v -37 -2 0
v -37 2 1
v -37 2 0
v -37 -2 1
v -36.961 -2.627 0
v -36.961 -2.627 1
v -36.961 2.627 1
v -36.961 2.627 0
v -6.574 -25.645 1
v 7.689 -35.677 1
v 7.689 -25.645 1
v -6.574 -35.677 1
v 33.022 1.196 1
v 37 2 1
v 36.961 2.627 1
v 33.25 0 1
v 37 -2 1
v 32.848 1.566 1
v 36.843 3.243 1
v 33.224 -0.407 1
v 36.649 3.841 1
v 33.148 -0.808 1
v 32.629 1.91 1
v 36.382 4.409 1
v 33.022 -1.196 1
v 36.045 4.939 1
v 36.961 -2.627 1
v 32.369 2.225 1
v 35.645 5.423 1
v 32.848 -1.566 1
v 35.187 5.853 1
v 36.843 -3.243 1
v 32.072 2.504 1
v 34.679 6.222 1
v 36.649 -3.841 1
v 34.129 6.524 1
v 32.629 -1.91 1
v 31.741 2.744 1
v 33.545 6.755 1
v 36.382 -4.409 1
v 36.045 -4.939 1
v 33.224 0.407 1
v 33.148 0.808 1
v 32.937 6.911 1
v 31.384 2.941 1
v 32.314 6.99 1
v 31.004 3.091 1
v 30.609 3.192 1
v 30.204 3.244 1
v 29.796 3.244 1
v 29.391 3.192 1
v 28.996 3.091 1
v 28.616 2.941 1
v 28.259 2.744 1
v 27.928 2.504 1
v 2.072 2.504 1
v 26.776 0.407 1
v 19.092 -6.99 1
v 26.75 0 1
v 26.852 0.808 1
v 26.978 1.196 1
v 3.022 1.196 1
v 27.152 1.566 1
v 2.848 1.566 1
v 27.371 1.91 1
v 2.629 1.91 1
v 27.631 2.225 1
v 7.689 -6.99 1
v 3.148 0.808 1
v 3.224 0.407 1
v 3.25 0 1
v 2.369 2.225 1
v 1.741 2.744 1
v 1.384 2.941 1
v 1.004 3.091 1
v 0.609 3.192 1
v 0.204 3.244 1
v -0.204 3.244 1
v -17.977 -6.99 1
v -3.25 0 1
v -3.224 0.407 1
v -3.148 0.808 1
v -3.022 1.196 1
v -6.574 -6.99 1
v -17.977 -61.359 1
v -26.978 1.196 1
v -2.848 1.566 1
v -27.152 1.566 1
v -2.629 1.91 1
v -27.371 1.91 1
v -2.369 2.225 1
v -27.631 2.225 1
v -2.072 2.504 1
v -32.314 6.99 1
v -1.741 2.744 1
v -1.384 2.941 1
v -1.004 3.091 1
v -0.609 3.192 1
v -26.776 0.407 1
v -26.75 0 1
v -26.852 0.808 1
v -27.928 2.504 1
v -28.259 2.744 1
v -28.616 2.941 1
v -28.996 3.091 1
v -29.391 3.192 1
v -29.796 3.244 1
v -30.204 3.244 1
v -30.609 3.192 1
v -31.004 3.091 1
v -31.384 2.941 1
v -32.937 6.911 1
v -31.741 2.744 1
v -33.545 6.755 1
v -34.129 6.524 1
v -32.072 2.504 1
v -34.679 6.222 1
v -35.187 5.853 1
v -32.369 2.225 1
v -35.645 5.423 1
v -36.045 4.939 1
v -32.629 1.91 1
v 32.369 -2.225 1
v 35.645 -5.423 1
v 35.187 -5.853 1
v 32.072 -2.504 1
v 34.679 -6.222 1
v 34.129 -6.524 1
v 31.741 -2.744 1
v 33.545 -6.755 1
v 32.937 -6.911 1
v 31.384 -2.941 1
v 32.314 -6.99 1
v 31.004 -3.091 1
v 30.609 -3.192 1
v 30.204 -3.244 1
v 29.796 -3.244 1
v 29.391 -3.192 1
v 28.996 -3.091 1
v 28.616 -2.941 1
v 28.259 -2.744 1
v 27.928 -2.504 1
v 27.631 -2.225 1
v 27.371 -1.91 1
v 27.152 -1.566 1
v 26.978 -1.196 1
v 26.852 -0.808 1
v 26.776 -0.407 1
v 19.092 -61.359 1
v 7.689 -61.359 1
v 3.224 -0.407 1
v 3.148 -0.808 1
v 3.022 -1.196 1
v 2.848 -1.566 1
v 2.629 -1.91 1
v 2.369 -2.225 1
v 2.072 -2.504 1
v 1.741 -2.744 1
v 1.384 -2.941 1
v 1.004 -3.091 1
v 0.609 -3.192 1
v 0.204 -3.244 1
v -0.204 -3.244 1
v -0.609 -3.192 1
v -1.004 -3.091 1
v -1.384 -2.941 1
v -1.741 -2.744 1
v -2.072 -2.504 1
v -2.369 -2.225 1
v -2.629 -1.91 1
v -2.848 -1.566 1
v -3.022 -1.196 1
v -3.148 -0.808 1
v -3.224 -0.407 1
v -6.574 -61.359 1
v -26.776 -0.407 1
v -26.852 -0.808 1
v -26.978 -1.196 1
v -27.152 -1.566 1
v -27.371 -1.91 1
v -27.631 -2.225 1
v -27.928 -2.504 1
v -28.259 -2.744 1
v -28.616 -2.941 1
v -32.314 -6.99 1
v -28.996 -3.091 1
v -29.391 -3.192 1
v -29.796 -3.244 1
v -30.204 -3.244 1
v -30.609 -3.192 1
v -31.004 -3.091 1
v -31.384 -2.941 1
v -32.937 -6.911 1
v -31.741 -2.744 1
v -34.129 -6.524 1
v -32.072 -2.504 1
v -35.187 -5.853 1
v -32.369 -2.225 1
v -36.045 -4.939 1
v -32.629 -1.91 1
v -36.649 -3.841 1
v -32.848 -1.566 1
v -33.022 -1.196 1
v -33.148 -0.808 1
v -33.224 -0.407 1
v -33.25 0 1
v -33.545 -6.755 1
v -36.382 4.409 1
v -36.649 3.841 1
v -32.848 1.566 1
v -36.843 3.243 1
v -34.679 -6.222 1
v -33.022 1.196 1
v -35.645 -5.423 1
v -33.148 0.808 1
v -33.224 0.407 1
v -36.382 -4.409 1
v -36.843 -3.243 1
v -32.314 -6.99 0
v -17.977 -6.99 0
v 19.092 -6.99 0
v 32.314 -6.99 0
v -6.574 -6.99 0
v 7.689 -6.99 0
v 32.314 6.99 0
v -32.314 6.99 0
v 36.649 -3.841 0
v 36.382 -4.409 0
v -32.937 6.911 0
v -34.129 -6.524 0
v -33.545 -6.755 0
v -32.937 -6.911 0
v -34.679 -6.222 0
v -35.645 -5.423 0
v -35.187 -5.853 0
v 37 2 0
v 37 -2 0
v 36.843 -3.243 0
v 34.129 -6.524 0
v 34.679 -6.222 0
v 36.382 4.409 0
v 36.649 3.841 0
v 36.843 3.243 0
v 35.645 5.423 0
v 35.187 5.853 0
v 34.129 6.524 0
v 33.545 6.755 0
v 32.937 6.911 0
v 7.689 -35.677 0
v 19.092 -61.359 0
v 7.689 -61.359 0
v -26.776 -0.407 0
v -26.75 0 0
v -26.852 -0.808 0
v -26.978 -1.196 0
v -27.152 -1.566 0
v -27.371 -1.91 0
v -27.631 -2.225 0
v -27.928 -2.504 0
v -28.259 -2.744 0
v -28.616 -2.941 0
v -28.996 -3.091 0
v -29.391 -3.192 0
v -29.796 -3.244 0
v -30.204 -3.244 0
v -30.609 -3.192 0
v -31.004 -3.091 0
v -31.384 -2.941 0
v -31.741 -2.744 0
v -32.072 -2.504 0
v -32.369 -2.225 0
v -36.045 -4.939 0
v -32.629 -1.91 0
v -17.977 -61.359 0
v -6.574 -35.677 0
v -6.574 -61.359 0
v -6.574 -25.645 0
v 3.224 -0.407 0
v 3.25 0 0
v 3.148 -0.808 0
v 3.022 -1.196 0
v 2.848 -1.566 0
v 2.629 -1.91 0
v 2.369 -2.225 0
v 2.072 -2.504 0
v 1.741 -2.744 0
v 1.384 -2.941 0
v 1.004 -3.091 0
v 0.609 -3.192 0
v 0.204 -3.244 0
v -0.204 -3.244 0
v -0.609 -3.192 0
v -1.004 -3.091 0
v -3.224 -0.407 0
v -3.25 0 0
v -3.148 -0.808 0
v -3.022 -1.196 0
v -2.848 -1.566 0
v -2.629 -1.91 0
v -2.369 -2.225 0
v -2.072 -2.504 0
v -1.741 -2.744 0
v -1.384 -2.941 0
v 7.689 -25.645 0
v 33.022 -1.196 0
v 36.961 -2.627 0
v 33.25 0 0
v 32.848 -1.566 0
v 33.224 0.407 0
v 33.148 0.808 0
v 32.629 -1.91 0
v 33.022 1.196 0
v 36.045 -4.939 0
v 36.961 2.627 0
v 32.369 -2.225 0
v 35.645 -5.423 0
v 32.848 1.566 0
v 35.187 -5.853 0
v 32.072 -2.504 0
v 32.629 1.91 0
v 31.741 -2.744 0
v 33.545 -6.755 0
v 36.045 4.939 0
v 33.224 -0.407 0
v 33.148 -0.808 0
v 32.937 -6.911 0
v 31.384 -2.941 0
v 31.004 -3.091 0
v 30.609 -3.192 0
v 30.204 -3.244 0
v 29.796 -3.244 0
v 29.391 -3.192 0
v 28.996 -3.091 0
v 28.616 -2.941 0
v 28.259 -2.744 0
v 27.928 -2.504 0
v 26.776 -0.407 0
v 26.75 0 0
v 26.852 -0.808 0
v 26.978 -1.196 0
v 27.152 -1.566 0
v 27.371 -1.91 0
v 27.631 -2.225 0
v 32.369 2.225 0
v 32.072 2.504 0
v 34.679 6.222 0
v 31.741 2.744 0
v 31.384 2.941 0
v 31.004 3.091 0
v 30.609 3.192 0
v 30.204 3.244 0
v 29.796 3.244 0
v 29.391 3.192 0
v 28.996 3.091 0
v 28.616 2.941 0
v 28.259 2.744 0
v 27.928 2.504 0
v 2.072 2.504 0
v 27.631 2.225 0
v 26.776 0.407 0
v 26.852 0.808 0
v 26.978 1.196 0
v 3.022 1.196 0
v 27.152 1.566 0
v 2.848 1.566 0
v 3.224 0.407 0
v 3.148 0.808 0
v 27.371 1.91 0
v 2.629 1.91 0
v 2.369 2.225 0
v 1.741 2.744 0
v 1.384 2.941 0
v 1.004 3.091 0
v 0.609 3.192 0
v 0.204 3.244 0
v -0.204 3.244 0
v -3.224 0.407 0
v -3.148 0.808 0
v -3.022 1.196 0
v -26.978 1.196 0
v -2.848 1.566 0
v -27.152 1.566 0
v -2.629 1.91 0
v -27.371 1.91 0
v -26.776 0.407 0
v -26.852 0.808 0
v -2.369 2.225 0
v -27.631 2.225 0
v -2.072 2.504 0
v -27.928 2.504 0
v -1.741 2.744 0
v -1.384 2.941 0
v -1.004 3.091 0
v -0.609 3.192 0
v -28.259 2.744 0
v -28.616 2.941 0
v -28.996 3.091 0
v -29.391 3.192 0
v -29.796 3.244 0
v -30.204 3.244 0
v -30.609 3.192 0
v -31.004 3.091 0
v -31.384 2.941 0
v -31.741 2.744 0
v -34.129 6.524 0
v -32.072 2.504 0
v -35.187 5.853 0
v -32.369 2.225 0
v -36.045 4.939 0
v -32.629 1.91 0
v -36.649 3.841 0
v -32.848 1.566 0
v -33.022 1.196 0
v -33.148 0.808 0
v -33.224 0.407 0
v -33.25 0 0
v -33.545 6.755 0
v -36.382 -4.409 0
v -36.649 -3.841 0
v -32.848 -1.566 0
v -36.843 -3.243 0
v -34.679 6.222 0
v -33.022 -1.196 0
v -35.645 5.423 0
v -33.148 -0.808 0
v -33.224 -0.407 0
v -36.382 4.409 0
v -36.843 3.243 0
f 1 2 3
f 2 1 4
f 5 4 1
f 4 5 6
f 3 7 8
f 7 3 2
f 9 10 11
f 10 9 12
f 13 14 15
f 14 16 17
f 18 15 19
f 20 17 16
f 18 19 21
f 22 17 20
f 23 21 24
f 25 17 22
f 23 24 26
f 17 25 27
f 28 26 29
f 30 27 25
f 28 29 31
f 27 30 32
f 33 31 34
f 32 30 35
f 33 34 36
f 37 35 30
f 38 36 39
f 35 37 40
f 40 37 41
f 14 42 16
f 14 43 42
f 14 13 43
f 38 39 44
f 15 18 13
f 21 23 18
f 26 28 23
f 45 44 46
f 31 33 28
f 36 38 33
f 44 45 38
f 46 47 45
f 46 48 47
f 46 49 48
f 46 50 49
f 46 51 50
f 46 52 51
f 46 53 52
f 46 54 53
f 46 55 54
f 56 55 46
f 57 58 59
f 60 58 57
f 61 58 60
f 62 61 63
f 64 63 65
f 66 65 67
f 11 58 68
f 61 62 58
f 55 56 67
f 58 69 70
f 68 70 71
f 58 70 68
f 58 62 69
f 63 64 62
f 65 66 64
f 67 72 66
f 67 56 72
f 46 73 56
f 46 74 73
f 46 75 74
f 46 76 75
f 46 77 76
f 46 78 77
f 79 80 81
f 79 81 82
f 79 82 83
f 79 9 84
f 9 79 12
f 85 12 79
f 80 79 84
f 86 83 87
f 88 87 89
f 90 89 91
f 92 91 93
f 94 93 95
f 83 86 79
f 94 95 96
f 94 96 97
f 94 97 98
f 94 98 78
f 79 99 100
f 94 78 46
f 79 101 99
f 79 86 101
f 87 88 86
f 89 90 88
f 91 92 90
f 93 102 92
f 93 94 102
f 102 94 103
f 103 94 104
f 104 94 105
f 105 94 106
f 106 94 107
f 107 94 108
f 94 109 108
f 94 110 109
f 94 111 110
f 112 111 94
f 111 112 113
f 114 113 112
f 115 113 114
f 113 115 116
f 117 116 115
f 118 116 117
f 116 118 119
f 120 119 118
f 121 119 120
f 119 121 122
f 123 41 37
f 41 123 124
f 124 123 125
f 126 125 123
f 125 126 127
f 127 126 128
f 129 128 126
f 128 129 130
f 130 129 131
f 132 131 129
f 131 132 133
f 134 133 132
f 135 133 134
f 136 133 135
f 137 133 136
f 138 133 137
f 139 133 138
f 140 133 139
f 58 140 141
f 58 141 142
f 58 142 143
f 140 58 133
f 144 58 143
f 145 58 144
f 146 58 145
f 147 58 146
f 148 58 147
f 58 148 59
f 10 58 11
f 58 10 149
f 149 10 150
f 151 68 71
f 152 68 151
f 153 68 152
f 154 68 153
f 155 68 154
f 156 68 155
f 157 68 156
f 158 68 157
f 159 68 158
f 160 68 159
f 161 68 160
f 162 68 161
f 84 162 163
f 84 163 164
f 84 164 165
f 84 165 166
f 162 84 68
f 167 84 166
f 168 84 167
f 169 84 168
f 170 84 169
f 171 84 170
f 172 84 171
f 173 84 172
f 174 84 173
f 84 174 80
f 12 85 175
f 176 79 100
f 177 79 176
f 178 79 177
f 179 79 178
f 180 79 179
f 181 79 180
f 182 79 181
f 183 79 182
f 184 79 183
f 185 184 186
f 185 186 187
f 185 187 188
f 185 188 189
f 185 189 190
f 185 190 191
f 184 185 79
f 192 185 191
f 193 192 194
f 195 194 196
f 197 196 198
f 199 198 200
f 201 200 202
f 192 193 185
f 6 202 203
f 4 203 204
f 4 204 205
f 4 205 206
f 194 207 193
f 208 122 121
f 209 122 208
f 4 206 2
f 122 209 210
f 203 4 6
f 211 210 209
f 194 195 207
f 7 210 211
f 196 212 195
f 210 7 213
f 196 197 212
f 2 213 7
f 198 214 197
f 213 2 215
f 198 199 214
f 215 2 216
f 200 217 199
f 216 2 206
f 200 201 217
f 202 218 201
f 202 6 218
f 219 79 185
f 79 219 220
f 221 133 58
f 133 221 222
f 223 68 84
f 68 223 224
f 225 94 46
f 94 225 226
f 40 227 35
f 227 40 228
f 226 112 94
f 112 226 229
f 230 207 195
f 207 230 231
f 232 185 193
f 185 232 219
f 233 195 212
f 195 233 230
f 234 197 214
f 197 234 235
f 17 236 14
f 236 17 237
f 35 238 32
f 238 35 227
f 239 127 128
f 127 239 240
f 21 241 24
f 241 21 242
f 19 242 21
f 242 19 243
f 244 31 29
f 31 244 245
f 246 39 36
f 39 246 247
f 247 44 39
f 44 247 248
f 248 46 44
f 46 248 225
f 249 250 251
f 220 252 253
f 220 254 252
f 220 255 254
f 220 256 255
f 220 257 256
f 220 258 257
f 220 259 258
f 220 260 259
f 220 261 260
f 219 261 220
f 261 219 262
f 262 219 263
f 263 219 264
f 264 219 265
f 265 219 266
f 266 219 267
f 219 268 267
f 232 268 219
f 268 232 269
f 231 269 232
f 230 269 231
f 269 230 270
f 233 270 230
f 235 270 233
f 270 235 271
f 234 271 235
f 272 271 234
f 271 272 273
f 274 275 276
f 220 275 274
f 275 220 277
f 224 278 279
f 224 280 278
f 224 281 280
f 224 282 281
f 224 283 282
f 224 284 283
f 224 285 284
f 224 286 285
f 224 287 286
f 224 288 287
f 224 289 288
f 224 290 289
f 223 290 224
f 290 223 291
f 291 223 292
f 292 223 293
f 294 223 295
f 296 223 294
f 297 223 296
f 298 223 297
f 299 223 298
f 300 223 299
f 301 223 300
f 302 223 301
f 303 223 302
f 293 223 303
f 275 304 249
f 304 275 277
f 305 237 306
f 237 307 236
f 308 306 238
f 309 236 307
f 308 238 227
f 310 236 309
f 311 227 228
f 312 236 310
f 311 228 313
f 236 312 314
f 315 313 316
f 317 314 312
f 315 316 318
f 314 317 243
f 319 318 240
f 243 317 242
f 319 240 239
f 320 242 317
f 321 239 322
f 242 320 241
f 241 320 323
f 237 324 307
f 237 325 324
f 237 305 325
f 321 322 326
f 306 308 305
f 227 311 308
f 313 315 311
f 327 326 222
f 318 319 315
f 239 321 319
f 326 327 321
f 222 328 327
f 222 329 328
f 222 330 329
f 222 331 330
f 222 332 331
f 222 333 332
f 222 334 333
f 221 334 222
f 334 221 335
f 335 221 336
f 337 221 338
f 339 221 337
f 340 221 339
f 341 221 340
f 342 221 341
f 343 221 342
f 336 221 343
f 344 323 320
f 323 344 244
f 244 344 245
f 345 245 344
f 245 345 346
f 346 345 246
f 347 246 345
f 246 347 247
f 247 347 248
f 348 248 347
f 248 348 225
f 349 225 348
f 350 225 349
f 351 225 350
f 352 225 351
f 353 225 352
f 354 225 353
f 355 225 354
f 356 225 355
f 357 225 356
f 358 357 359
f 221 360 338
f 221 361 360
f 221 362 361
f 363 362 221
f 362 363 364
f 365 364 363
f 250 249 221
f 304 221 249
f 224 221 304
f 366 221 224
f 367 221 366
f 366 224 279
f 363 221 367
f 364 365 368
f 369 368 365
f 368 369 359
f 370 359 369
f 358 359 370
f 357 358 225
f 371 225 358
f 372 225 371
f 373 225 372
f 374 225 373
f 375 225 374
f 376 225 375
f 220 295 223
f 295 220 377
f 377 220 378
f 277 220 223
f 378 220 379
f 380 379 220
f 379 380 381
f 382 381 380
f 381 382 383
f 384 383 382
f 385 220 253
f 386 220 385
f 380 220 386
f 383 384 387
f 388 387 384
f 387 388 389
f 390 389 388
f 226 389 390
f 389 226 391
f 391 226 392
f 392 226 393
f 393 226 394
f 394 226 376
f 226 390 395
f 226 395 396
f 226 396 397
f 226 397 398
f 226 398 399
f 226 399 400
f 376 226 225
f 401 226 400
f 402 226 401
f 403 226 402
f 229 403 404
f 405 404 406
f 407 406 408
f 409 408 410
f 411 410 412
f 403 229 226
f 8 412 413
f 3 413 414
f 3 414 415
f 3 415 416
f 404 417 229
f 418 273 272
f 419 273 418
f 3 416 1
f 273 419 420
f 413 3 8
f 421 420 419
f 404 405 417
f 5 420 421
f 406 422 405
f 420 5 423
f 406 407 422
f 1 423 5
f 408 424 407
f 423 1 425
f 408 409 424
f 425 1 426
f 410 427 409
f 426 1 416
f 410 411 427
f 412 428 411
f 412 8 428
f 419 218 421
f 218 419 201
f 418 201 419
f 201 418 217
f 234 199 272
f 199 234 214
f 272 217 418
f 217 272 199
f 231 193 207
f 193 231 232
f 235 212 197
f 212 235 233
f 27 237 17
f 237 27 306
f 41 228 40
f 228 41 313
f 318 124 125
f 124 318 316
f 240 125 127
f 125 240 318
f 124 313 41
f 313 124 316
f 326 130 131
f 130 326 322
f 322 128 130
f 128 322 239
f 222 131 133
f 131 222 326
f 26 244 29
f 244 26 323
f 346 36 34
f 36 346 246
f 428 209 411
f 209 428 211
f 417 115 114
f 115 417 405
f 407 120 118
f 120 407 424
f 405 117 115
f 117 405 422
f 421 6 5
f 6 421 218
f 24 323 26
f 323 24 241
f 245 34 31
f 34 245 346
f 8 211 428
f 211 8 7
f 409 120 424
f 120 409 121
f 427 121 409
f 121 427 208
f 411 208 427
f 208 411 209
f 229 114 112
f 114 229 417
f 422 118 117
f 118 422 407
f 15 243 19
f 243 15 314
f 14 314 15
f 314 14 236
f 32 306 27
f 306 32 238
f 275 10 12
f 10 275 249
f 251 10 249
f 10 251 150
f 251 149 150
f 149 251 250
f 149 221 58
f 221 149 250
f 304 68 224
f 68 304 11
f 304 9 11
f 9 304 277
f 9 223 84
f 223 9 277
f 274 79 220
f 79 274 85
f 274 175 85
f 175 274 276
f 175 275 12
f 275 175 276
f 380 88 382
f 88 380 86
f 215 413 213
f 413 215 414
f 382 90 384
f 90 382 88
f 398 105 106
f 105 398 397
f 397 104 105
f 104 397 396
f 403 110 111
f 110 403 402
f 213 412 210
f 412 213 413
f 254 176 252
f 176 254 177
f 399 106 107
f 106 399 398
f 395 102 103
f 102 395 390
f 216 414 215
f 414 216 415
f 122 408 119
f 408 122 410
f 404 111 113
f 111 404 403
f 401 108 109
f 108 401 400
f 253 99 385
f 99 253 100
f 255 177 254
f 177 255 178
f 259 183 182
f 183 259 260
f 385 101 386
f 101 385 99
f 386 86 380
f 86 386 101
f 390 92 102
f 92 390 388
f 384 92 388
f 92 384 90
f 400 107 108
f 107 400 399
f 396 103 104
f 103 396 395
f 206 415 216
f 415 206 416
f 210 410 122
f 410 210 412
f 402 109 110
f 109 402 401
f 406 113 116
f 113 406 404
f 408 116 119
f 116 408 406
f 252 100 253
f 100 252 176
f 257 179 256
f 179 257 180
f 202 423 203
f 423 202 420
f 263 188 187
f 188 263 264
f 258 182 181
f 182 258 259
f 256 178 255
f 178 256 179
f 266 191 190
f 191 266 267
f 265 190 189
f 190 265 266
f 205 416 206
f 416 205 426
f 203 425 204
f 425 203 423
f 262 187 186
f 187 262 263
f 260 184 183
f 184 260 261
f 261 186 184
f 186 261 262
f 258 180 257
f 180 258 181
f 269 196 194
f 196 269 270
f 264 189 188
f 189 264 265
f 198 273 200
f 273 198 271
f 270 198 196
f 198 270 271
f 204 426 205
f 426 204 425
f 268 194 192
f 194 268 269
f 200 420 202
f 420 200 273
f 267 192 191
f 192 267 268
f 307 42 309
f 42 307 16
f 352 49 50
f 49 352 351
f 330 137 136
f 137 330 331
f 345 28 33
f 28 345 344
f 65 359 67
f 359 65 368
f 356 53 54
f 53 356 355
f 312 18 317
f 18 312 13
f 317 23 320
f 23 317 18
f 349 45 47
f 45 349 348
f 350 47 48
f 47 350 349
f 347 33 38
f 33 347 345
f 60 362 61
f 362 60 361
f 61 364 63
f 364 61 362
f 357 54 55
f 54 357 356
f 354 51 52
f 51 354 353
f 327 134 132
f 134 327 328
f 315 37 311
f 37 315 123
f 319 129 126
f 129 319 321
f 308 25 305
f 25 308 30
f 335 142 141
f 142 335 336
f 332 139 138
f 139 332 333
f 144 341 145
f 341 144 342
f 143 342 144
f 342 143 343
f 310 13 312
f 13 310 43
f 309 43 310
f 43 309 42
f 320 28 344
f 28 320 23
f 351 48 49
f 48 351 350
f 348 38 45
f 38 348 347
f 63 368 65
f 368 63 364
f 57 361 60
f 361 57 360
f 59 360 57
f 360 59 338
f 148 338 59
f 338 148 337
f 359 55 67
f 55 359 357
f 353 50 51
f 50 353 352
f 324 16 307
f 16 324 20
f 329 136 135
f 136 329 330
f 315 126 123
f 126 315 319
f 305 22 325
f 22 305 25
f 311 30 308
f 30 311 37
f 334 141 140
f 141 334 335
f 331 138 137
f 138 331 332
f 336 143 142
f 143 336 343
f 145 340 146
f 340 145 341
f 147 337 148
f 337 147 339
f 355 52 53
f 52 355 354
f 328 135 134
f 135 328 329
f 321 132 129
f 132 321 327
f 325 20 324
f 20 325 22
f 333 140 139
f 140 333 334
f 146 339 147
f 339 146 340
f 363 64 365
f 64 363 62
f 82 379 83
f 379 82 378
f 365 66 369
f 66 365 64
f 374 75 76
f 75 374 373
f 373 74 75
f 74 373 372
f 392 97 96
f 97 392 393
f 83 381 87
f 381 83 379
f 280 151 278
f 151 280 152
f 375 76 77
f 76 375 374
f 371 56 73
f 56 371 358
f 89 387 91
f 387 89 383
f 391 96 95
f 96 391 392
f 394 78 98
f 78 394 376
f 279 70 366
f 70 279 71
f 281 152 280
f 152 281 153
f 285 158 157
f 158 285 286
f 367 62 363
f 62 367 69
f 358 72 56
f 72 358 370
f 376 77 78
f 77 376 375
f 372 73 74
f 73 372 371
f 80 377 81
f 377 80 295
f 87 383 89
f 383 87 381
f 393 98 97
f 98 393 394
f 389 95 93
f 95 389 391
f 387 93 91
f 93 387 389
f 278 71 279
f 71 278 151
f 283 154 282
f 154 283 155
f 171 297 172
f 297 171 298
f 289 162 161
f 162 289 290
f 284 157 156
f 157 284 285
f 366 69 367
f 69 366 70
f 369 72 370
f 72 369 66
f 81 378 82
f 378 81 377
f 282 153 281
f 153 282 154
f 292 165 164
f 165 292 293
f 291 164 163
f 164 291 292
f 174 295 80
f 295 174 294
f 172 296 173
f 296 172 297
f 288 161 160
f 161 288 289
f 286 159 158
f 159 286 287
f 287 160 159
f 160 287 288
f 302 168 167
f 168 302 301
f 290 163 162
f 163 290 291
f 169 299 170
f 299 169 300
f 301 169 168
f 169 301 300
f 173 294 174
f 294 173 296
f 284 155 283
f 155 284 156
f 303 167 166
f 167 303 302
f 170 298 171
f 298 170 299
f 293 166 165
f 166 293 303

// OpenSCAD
$fn = 50;


difference() {
	union() {
		translate(v = [0, 0, 0]) {
			rotate(a = [0, 0, 0]) {
				hull() {
					translate(v = [-32.0000000000, 2.0000000000, 0]) {
						rotate(a = [0, 0, 0]) {
							translate(v = [0, 0, 0]) {
								rotate(a = [0, 0, 0]) {
									cylinder(h = 1, r = 5);
								}
							}
						}
					}
					translate(v = [32.0000000000, 2.0000000000, 0]) {
						rotate(a = [0, 0, 0]) {
							translate(v = [0, 0, 0]) {
								rotate(a = [0, 0, 0]) {
									cylinder(h = 1, r = 5);
								}
							}
						}
					}
					translate(v = [-32.0000000000, -2.0000000000, 0]) {
						rotate(a = [0, 0, 0]) {
							translate(v = [0, 0, 0]) {
								rotate(a = [0, 0, 0]) {
									cylinder(h = 1, r = 5);
								}
							}
						}
					}
					translate(v = [32.0000000000, -2.0000000000, 0]) {
						rotate(a = [0, 0, 0]) {
							translate(v = [0, 0, 0]) {
								rotate(a = [0, 0, 0]) {
									cylinder(h = 1, r = 5);
								}
							}
						}
					}
				}
			}
		}
		translate(v = [0, -5, 0]) {
			rotate(a = [0, 0, 0]) {
				linear_extrude(height = 1) {
					text(font = "DejaVu Sans Mono:style=Bold", halign = "center", size = 57.0000000000, text = "H", valign = "top");
				}
			}
		}
	}
	union() {
		translate(v = [-30.0000000000, 0.0000000000, -125.0000000000]) {
			rotate(a = [0, 0, 0]) {
				cylinder(h = 250, r = 3.2500000000);
			}
		}
		translate(v = [30.0000000000, 0.0000000000, -125.0000000000]) {
			rotate(a = [0, 0, 0]) {
				cylinder(h = 250, r = 3.2500000000);
			}
		}
		translate(v = [30.0000000000, 0.0000000000, -125.0000000000]) {
			rotate(a = [0, 0, 0]) {
				cylinder(h = 250, r = 3.2500000000);
			}
		}
		translate(v = [0, 0, -125.0000000000]) {
			rotate(a = [0, 0, 0]) {
				cylinder(h = 250, r = 3.2500000000);
			}
		}
	}
}
